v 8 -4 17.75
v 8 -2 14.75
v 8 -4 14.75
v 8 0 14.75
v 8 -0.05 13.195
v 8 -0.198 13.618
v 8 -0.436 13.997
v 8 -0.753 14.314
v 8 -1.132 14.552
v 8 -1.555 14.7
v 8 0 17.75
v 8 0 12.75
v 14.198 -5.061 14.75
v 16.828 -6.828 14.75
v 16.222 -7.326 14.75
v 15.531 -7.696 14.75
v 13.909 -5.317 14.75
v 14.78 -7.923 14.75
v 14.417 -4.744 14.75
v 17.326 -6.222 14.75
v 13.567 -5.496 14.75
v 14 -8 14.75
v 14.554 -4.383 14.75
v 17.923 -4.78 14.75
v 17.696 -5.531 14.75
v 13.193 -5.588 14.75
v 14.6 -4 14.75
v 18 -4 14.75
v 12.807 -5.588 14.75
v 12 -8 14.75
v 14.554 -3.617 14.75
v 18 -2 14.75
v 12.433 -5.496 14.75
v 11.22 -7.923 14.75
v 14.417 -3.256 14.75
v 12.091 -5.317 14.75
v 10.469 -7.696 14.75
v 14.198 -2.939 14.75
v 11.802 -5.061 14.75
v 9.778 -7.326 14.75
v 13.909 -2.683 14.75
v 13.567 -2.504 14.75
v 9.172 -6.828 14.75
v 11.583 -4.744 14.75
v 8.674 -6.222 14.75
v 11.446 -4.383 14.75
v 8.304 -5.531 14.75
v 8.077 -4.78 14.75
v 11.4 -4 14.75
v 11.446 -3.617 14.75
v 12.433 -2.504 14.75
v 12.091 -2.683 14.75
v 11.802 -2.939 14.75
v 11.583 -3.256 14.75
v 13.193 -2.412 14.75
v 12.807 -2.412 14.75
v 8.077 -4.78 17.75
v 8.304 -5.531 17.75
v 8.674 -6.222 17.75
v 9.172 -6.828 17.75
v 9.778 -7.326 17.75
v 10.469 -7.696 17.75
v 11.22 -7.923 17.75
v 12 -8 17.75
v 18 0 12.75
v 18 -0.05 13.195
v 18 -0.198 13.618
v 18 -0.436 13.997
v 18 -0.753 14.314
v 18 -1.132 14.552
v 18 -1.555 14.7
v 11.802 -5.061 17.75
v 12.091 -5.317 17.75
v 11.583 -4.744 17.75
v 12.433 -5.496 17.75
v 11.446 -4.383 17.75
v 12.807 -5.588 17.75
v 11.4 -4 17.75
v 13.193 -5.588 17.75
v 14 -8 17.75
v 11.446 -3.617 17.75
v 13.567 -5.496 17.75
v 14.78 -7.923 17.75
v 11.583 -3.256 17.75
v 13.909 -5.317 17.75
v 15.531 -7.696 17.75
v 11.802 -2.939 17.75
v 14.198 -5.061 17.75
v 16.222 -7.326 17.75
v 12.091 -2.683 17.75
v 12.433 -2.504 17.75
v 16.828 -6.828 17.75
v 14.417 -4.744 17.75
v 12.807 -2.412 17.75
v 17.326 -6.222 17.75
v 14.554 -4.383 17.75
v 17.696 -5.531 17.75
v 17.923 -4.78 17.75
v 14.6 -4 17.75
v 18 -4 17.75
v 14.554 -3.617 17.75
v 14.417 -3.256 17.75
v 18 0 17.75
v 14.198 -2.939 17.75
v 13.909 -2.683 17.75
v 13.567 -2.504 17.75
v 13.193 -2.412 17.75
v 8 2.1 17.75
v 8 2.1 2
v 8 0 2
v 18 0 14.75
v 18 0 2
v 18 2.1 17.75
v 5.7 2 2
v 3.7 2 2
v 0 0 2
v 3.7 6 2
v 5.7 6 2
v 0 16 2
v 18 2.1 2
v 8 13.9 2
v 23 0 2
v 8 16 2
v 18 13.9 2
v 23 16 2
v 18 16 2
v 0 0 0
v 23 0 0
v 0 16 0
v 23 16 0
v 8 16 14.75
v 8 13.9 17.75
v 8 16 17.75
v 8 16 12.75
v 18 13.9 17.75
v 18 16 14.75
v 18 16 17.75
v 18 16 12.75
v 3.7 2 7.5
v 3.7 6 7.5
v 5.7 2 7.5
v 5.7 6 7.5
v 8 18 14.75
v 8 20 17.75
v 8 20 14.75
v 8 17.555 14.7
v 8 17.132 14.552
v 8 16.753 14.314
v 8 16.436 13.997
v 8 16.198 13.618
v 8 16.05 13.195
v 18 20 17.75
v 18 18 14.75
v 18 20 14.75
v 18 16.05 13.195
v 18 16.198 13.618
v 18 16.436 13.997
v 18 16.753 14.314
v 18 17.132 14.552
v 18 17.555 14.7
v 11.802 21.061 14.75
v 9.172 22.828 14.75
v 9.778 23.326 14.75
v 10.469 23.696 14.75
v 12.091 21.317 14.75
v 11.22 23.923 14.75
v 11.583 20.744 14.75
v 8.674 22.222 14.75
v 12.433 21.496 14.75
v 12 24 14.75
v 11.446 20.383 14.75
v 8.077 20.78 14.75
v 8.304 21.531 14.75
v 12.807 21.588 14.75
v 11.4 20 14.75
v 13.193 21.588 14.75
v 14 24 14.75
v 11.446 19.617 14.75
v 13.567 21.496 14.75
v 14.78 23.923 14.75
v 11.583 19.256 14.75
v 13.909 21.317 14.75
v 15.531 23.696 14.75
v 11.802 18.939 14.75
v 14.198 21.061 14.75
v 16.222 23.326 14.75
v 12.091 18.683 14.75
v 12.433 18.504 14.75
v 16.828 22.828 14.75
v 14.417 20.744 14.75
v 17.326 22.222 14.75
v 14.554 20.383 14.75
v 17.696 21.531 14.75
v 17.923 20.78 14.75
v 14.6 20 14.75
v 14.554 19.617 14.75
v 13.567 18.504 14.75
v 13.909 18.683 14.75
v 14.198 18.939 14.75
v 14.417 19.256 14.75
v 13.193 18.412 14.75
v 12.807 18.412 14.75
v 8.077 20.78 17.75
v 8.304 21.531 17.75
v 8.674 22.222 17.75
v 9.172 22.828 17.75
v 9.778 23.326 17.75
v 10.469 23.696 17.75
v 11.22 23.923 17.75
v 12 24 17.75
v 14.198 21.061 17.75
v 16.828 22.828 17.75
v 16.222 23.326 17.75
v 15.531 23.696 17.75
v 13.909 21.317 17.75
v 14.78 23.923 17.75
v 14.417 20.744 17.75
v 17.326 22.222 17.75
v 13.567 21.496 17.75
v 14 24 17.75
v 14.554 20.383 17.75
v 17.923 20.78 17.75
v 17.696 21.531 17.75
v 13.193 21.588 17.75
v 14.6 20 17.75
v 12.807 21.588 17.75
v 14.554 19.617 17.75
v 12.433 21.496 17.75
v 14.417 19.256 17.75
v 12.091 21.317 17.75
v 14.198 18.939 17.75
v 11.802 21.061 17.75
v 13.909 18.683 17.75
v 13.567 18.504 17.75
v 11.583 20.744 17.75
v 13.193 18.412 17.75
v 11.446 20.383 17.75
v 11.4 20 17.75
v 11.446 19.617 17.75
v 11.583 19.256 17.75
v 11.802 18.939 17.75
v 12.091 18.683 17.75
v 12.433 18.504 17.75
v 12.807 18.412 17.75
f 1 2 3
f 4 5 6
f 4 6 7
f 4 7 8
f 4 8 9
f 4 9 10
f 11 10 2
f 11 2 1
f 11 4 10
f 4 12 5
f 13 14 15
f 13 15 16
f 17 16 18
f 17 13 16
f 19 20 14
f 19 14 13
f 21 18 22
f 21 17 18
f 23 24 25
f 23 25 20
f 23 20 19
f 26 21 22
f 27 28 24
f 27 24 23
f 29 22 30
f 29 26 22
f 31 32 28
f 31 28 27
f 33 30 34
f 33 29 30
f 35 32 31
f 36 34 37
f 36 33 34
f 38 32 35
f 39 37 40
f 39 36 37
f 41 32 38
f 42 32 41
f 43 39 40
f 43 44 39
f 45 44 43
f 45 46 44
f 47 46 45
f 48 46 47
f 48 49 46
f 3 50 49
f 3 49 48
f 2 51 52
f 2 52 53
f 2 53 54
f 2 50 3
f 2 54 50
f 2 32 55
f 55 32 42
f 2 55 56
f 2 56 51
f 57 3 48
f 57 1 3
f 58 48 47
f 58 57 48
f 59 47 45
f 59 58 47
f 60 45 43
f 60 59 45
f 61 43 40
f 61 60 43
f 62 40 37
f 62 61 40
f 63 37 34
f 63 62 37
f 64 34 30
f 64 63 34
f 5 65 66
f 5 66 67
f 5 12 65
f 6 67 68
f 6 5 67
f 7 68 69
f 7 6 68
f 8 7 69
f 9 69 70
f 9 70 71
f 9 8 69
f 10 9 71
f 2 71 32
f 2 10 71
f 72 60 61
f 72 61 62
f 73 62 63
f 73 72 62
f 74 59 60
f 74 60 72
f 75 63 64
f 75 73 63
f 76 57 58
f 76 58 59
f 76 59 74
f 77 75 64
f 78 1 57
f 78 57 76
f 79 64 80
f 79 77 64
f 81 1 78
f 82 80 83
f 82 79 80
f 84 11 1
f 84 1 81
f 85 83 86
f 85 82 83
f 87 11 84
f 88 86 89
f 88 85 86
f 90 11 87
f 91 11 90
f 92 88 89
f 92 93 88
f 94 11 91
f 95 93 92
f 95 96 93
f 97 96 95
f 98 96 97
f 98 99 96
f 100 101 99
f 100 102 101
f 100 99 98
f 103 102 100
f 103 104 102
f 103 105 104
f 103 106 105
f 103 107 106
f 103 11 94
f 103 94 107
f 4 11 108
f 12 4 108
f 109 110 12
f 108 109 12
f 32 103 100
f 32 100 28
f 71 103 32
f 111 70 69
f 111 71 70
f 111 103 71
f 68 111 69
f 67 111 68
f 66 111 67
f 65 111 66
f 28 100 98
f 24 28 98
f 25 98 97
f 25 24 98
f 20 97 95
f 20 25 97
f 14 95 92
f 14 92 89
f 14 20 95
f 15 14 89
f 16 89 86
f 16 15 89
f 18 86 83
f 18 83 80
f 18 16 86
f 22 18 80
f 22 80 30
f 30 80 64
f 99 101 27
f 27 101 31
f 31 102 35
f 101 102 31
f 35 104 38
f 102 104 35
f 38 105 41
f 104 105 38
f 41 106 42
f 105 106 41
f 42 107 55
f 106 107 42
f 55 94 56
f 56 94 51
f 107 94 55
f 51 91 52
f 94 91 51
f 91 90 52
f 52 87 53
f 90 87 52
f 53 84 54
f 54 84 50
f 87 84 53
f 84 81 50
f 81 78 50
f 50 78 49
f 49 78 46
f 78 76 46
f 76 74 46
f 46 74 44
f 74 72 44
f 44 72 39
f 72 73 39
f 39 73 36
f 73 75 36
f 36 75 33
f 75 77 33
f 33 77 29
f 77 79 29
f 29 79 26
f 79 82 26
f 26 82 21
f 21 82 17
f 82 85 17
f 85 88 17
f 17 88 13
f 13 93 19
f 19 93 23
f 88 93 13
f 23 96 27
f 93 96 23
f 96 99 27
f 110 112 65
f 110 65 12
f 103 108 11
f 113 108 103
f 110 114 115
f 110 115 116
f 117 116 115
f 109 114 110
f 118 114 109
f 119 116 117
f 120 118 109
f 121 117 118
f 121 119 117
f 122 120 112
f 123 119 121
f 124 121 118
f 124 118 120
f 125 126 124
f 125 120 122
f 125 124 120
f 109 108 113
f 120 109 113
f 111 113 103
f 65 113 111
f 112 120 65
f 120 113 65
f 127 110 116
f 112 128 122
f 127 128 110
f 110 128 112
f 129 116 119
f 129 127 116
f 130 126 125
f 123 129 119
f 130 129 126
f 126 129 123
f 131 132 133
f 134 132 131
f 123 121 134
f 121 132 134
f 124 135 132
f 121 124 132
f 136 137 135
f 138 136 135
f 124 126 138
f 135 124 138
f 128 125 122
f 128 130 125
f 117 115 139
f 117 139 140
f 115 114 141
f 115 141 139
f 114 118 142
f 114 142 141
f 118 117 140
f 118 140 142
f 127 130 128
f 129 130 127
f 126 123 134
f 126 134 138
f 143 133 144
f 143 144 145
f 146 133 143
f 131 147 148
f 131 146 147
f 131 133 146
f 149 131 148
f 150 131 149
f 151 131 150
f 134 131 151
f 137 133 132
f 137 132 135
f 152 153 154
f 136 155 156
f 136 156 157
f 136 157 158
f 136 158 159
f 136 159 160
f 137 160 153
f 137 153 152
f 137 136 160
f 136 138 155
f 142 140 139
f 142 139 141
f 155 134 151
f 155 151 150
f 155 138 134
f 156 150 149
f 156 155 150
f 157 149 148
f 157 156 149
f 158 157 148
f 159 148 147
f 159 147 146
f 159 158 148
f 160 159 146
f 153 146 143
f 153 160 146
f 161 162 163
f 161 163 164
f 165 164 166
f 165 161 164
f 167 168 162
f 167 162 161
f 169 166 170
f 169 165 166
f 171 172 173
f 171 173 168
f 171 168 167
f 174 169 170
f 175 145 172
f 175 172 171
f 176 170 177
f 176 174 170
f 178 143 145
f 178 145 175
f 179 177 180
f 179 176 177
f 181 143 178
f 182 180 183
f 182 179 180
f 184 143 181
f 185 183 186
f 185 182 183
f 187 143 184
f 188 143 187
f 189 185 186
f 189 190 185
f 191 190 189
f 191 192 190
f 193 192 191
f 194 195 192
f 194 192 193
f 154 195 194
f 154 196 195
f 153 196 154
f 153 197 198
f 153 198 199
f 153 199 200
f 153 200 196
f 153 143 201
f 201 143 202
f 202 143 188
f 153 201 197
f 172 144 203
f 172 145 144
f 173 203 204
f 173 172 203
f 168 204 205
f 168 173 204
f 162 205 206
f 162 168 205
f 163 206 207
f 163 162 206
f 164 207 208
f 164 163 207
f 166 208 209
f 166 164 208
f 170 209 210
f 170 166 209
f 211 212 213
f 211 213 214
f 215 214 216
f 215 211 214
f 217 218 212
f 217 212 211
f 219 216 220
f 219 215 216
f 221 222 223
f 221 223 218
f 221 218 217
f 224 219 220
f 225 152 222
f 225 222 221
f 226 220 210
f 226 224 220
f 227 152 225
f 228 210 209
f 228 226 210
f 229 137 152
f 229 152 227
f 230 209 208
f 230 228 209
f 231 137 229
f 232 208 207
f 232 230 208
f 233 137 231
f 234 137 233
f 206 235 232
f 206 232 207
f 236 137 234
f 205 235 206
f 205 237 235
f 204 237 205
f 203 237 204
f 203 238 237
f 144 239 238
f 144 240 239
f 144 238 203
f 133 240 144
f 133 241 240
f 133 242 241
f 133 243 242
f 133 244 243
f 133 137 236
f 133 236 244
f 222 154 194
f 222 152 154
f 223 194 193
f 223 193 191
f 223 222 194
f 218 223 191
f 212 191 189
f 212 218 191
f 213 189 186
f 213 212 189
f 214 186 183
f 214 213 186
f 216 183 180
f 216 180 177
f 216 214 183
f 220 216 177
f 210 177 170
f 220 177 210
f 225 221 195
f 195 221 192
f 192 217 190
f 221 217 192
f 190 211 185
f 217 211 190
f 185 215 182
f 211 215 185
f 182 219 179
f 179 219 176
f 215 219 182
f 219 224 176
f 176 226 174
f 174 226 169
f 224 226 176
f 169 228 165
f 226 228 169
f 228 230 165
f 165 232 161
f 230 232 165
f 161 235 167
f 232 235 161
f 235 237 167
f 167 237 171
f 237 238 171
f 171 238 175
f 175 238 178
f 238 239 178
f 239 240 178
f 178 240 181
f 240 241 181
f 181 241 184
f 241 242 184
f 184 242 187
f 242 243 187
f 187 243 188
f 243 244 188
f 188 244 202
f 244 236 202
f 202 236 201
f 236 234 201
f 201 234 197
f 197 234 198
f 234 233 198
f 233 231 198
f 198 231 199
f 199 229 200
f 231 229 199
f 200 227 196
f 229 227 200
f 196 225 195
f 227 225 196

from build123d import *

# Parameters (mm, degrees)
SKETCH_W     = 23
SKETCH_H     = 16
PAD_DEPTH    = 2
SKETCH001_W  = 10
SKETCH001_H  = 2.1
PAD001_DEPTH = 15.75
SKETCH002_W  = 10
SKETCH002_H  = 3
PAD002_DEPTH = 8
SKETCH003_W  = 10
SKETCH003_H  = 3
PAD003_DEPTH = 8
SKETCH004_R  = 1.6
POCKET_DEPTH = 5
SKETCH005_W  = 2
SKETCH005_H  = 4
PAD004_DEPTH = 5.5
FILLET_R     = 2
FILLET001_R  = 4


with BuildPart() as part:
    # Sketch → Pad (new body)
    with BuildSketch(Plane.XY):
        with Locations((11.5, 8)):
            Rectangle(SKETCH_W, SKETCH_H)
    extrude(amount=PAD_DEPTH)

    # Sketch001 (on Face6 of Pad) → Pad001 (join)
    with BuildSketch(Plane.XY.offset(2)):
        with Locations((13, 1.05)):
            Rectangle(SKETCH001_W, SKETCH001_H)
        with Locations((13, 14.95)):
            Rectangle(SKETCH001_W, SKETCH001_H)
    extrude(amount=PAD001_DEPTH)

    # Sketch002 (on Face6 of Pad001) → Pad002 (join)
    with BuildSketch(Plane.XZ):
        with Locations((13, 16.25)):
            Rectangle(SKETCH002_W, SKETCH002_H)
    extrude(amount=PAD002_DEPTH)

    # Sketch003 (on Face15 of Pad002) → Pad003 (join)
    with BuildSketch(Plane(origin=(0, 16, 0), x_dir=(-1, 0, 0), z_dir=(0, 1, 0))):
        with Locations((-13, 16.25)):
            Rectangle(SKETCH003_W, SKETCH003_H)
    extrude(amount=PAD003_DEPTH)

    # Sketch004 (on Face26 of Pad003) → Pocket (cut)
    with BuildSketch(Plane.XY.offset(17.75)):
        with Locations((13, -4)):
            Circle(SKETCH004_R)
        with Locations((13, 20)):
            Circle(SKETCH004_R)
    extrude(amount=-POCKET_DEPTH, mode=Mode.SUBTRACT)

    # Sketch005 → Pad004 (join)
    with BuildSketch(Plane.XY.offset(2)):
        with Locations((4.7, 4)):
            Rectangle(SKETCH005_W, SKETCH005_H)
    extrude(amount=PAD004_DEPTH)

    # Fillet
    fillet_edges = [part.edges().sort_by_distance(p)[0] for p in [
        (13, 16, 14.75),
        (13, 0, 14.75),
    ]]
    fillet(fillet_edges, radius=FILLET_R)

    # Fillet001
    fillet001_edges = [part.edges().sort_by_distance(p)[0] for p in [
        (8, -8, 16.25),
        (18, -8, 16.25),
        (18, 24, 16.25),
        (8, 24, 16.25),
    ]]
    fillet(fillet001_edges, radius=FILLET001_R)


solid = part.part
